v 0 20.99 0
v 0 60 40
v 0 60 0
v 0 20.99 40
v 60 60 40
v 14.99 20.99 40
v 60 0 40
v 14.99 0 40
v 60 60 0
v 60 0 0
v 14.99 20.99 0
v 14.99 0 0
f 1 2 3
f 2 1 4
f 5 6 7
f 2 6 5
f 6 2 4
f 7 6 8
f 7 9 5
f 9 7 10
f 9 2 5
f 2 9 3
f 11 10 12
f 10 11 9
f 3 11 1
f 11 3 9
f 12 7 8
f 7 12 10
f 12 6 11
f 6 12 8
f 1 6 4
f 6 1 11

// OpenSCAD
// file: ../corner-cutout-shelf-support.scad
module cornerCutoutShelfSupport(side = 60,
                               height = 40,
                               sideCutout = 15,
                               frontCutout = 21)
{
    difference()
    {
        color("brown")
        cube(size = [side, side, height]);

        cutout(sideCutout = sideCutout,
               frontCutout = frontCutout,
               height = height);
    }
}

module cutout(sideCutout ,
              frontCutout ,
              height )
{
    translate([-0.01, -0.01, -0.01])
    cube(size = [sideCutout, frontCutout, height + 0.02]);
}
// main file
use <../corner-cutout-shelf-support.scad>;

cornerCutoutShelfSupport();
